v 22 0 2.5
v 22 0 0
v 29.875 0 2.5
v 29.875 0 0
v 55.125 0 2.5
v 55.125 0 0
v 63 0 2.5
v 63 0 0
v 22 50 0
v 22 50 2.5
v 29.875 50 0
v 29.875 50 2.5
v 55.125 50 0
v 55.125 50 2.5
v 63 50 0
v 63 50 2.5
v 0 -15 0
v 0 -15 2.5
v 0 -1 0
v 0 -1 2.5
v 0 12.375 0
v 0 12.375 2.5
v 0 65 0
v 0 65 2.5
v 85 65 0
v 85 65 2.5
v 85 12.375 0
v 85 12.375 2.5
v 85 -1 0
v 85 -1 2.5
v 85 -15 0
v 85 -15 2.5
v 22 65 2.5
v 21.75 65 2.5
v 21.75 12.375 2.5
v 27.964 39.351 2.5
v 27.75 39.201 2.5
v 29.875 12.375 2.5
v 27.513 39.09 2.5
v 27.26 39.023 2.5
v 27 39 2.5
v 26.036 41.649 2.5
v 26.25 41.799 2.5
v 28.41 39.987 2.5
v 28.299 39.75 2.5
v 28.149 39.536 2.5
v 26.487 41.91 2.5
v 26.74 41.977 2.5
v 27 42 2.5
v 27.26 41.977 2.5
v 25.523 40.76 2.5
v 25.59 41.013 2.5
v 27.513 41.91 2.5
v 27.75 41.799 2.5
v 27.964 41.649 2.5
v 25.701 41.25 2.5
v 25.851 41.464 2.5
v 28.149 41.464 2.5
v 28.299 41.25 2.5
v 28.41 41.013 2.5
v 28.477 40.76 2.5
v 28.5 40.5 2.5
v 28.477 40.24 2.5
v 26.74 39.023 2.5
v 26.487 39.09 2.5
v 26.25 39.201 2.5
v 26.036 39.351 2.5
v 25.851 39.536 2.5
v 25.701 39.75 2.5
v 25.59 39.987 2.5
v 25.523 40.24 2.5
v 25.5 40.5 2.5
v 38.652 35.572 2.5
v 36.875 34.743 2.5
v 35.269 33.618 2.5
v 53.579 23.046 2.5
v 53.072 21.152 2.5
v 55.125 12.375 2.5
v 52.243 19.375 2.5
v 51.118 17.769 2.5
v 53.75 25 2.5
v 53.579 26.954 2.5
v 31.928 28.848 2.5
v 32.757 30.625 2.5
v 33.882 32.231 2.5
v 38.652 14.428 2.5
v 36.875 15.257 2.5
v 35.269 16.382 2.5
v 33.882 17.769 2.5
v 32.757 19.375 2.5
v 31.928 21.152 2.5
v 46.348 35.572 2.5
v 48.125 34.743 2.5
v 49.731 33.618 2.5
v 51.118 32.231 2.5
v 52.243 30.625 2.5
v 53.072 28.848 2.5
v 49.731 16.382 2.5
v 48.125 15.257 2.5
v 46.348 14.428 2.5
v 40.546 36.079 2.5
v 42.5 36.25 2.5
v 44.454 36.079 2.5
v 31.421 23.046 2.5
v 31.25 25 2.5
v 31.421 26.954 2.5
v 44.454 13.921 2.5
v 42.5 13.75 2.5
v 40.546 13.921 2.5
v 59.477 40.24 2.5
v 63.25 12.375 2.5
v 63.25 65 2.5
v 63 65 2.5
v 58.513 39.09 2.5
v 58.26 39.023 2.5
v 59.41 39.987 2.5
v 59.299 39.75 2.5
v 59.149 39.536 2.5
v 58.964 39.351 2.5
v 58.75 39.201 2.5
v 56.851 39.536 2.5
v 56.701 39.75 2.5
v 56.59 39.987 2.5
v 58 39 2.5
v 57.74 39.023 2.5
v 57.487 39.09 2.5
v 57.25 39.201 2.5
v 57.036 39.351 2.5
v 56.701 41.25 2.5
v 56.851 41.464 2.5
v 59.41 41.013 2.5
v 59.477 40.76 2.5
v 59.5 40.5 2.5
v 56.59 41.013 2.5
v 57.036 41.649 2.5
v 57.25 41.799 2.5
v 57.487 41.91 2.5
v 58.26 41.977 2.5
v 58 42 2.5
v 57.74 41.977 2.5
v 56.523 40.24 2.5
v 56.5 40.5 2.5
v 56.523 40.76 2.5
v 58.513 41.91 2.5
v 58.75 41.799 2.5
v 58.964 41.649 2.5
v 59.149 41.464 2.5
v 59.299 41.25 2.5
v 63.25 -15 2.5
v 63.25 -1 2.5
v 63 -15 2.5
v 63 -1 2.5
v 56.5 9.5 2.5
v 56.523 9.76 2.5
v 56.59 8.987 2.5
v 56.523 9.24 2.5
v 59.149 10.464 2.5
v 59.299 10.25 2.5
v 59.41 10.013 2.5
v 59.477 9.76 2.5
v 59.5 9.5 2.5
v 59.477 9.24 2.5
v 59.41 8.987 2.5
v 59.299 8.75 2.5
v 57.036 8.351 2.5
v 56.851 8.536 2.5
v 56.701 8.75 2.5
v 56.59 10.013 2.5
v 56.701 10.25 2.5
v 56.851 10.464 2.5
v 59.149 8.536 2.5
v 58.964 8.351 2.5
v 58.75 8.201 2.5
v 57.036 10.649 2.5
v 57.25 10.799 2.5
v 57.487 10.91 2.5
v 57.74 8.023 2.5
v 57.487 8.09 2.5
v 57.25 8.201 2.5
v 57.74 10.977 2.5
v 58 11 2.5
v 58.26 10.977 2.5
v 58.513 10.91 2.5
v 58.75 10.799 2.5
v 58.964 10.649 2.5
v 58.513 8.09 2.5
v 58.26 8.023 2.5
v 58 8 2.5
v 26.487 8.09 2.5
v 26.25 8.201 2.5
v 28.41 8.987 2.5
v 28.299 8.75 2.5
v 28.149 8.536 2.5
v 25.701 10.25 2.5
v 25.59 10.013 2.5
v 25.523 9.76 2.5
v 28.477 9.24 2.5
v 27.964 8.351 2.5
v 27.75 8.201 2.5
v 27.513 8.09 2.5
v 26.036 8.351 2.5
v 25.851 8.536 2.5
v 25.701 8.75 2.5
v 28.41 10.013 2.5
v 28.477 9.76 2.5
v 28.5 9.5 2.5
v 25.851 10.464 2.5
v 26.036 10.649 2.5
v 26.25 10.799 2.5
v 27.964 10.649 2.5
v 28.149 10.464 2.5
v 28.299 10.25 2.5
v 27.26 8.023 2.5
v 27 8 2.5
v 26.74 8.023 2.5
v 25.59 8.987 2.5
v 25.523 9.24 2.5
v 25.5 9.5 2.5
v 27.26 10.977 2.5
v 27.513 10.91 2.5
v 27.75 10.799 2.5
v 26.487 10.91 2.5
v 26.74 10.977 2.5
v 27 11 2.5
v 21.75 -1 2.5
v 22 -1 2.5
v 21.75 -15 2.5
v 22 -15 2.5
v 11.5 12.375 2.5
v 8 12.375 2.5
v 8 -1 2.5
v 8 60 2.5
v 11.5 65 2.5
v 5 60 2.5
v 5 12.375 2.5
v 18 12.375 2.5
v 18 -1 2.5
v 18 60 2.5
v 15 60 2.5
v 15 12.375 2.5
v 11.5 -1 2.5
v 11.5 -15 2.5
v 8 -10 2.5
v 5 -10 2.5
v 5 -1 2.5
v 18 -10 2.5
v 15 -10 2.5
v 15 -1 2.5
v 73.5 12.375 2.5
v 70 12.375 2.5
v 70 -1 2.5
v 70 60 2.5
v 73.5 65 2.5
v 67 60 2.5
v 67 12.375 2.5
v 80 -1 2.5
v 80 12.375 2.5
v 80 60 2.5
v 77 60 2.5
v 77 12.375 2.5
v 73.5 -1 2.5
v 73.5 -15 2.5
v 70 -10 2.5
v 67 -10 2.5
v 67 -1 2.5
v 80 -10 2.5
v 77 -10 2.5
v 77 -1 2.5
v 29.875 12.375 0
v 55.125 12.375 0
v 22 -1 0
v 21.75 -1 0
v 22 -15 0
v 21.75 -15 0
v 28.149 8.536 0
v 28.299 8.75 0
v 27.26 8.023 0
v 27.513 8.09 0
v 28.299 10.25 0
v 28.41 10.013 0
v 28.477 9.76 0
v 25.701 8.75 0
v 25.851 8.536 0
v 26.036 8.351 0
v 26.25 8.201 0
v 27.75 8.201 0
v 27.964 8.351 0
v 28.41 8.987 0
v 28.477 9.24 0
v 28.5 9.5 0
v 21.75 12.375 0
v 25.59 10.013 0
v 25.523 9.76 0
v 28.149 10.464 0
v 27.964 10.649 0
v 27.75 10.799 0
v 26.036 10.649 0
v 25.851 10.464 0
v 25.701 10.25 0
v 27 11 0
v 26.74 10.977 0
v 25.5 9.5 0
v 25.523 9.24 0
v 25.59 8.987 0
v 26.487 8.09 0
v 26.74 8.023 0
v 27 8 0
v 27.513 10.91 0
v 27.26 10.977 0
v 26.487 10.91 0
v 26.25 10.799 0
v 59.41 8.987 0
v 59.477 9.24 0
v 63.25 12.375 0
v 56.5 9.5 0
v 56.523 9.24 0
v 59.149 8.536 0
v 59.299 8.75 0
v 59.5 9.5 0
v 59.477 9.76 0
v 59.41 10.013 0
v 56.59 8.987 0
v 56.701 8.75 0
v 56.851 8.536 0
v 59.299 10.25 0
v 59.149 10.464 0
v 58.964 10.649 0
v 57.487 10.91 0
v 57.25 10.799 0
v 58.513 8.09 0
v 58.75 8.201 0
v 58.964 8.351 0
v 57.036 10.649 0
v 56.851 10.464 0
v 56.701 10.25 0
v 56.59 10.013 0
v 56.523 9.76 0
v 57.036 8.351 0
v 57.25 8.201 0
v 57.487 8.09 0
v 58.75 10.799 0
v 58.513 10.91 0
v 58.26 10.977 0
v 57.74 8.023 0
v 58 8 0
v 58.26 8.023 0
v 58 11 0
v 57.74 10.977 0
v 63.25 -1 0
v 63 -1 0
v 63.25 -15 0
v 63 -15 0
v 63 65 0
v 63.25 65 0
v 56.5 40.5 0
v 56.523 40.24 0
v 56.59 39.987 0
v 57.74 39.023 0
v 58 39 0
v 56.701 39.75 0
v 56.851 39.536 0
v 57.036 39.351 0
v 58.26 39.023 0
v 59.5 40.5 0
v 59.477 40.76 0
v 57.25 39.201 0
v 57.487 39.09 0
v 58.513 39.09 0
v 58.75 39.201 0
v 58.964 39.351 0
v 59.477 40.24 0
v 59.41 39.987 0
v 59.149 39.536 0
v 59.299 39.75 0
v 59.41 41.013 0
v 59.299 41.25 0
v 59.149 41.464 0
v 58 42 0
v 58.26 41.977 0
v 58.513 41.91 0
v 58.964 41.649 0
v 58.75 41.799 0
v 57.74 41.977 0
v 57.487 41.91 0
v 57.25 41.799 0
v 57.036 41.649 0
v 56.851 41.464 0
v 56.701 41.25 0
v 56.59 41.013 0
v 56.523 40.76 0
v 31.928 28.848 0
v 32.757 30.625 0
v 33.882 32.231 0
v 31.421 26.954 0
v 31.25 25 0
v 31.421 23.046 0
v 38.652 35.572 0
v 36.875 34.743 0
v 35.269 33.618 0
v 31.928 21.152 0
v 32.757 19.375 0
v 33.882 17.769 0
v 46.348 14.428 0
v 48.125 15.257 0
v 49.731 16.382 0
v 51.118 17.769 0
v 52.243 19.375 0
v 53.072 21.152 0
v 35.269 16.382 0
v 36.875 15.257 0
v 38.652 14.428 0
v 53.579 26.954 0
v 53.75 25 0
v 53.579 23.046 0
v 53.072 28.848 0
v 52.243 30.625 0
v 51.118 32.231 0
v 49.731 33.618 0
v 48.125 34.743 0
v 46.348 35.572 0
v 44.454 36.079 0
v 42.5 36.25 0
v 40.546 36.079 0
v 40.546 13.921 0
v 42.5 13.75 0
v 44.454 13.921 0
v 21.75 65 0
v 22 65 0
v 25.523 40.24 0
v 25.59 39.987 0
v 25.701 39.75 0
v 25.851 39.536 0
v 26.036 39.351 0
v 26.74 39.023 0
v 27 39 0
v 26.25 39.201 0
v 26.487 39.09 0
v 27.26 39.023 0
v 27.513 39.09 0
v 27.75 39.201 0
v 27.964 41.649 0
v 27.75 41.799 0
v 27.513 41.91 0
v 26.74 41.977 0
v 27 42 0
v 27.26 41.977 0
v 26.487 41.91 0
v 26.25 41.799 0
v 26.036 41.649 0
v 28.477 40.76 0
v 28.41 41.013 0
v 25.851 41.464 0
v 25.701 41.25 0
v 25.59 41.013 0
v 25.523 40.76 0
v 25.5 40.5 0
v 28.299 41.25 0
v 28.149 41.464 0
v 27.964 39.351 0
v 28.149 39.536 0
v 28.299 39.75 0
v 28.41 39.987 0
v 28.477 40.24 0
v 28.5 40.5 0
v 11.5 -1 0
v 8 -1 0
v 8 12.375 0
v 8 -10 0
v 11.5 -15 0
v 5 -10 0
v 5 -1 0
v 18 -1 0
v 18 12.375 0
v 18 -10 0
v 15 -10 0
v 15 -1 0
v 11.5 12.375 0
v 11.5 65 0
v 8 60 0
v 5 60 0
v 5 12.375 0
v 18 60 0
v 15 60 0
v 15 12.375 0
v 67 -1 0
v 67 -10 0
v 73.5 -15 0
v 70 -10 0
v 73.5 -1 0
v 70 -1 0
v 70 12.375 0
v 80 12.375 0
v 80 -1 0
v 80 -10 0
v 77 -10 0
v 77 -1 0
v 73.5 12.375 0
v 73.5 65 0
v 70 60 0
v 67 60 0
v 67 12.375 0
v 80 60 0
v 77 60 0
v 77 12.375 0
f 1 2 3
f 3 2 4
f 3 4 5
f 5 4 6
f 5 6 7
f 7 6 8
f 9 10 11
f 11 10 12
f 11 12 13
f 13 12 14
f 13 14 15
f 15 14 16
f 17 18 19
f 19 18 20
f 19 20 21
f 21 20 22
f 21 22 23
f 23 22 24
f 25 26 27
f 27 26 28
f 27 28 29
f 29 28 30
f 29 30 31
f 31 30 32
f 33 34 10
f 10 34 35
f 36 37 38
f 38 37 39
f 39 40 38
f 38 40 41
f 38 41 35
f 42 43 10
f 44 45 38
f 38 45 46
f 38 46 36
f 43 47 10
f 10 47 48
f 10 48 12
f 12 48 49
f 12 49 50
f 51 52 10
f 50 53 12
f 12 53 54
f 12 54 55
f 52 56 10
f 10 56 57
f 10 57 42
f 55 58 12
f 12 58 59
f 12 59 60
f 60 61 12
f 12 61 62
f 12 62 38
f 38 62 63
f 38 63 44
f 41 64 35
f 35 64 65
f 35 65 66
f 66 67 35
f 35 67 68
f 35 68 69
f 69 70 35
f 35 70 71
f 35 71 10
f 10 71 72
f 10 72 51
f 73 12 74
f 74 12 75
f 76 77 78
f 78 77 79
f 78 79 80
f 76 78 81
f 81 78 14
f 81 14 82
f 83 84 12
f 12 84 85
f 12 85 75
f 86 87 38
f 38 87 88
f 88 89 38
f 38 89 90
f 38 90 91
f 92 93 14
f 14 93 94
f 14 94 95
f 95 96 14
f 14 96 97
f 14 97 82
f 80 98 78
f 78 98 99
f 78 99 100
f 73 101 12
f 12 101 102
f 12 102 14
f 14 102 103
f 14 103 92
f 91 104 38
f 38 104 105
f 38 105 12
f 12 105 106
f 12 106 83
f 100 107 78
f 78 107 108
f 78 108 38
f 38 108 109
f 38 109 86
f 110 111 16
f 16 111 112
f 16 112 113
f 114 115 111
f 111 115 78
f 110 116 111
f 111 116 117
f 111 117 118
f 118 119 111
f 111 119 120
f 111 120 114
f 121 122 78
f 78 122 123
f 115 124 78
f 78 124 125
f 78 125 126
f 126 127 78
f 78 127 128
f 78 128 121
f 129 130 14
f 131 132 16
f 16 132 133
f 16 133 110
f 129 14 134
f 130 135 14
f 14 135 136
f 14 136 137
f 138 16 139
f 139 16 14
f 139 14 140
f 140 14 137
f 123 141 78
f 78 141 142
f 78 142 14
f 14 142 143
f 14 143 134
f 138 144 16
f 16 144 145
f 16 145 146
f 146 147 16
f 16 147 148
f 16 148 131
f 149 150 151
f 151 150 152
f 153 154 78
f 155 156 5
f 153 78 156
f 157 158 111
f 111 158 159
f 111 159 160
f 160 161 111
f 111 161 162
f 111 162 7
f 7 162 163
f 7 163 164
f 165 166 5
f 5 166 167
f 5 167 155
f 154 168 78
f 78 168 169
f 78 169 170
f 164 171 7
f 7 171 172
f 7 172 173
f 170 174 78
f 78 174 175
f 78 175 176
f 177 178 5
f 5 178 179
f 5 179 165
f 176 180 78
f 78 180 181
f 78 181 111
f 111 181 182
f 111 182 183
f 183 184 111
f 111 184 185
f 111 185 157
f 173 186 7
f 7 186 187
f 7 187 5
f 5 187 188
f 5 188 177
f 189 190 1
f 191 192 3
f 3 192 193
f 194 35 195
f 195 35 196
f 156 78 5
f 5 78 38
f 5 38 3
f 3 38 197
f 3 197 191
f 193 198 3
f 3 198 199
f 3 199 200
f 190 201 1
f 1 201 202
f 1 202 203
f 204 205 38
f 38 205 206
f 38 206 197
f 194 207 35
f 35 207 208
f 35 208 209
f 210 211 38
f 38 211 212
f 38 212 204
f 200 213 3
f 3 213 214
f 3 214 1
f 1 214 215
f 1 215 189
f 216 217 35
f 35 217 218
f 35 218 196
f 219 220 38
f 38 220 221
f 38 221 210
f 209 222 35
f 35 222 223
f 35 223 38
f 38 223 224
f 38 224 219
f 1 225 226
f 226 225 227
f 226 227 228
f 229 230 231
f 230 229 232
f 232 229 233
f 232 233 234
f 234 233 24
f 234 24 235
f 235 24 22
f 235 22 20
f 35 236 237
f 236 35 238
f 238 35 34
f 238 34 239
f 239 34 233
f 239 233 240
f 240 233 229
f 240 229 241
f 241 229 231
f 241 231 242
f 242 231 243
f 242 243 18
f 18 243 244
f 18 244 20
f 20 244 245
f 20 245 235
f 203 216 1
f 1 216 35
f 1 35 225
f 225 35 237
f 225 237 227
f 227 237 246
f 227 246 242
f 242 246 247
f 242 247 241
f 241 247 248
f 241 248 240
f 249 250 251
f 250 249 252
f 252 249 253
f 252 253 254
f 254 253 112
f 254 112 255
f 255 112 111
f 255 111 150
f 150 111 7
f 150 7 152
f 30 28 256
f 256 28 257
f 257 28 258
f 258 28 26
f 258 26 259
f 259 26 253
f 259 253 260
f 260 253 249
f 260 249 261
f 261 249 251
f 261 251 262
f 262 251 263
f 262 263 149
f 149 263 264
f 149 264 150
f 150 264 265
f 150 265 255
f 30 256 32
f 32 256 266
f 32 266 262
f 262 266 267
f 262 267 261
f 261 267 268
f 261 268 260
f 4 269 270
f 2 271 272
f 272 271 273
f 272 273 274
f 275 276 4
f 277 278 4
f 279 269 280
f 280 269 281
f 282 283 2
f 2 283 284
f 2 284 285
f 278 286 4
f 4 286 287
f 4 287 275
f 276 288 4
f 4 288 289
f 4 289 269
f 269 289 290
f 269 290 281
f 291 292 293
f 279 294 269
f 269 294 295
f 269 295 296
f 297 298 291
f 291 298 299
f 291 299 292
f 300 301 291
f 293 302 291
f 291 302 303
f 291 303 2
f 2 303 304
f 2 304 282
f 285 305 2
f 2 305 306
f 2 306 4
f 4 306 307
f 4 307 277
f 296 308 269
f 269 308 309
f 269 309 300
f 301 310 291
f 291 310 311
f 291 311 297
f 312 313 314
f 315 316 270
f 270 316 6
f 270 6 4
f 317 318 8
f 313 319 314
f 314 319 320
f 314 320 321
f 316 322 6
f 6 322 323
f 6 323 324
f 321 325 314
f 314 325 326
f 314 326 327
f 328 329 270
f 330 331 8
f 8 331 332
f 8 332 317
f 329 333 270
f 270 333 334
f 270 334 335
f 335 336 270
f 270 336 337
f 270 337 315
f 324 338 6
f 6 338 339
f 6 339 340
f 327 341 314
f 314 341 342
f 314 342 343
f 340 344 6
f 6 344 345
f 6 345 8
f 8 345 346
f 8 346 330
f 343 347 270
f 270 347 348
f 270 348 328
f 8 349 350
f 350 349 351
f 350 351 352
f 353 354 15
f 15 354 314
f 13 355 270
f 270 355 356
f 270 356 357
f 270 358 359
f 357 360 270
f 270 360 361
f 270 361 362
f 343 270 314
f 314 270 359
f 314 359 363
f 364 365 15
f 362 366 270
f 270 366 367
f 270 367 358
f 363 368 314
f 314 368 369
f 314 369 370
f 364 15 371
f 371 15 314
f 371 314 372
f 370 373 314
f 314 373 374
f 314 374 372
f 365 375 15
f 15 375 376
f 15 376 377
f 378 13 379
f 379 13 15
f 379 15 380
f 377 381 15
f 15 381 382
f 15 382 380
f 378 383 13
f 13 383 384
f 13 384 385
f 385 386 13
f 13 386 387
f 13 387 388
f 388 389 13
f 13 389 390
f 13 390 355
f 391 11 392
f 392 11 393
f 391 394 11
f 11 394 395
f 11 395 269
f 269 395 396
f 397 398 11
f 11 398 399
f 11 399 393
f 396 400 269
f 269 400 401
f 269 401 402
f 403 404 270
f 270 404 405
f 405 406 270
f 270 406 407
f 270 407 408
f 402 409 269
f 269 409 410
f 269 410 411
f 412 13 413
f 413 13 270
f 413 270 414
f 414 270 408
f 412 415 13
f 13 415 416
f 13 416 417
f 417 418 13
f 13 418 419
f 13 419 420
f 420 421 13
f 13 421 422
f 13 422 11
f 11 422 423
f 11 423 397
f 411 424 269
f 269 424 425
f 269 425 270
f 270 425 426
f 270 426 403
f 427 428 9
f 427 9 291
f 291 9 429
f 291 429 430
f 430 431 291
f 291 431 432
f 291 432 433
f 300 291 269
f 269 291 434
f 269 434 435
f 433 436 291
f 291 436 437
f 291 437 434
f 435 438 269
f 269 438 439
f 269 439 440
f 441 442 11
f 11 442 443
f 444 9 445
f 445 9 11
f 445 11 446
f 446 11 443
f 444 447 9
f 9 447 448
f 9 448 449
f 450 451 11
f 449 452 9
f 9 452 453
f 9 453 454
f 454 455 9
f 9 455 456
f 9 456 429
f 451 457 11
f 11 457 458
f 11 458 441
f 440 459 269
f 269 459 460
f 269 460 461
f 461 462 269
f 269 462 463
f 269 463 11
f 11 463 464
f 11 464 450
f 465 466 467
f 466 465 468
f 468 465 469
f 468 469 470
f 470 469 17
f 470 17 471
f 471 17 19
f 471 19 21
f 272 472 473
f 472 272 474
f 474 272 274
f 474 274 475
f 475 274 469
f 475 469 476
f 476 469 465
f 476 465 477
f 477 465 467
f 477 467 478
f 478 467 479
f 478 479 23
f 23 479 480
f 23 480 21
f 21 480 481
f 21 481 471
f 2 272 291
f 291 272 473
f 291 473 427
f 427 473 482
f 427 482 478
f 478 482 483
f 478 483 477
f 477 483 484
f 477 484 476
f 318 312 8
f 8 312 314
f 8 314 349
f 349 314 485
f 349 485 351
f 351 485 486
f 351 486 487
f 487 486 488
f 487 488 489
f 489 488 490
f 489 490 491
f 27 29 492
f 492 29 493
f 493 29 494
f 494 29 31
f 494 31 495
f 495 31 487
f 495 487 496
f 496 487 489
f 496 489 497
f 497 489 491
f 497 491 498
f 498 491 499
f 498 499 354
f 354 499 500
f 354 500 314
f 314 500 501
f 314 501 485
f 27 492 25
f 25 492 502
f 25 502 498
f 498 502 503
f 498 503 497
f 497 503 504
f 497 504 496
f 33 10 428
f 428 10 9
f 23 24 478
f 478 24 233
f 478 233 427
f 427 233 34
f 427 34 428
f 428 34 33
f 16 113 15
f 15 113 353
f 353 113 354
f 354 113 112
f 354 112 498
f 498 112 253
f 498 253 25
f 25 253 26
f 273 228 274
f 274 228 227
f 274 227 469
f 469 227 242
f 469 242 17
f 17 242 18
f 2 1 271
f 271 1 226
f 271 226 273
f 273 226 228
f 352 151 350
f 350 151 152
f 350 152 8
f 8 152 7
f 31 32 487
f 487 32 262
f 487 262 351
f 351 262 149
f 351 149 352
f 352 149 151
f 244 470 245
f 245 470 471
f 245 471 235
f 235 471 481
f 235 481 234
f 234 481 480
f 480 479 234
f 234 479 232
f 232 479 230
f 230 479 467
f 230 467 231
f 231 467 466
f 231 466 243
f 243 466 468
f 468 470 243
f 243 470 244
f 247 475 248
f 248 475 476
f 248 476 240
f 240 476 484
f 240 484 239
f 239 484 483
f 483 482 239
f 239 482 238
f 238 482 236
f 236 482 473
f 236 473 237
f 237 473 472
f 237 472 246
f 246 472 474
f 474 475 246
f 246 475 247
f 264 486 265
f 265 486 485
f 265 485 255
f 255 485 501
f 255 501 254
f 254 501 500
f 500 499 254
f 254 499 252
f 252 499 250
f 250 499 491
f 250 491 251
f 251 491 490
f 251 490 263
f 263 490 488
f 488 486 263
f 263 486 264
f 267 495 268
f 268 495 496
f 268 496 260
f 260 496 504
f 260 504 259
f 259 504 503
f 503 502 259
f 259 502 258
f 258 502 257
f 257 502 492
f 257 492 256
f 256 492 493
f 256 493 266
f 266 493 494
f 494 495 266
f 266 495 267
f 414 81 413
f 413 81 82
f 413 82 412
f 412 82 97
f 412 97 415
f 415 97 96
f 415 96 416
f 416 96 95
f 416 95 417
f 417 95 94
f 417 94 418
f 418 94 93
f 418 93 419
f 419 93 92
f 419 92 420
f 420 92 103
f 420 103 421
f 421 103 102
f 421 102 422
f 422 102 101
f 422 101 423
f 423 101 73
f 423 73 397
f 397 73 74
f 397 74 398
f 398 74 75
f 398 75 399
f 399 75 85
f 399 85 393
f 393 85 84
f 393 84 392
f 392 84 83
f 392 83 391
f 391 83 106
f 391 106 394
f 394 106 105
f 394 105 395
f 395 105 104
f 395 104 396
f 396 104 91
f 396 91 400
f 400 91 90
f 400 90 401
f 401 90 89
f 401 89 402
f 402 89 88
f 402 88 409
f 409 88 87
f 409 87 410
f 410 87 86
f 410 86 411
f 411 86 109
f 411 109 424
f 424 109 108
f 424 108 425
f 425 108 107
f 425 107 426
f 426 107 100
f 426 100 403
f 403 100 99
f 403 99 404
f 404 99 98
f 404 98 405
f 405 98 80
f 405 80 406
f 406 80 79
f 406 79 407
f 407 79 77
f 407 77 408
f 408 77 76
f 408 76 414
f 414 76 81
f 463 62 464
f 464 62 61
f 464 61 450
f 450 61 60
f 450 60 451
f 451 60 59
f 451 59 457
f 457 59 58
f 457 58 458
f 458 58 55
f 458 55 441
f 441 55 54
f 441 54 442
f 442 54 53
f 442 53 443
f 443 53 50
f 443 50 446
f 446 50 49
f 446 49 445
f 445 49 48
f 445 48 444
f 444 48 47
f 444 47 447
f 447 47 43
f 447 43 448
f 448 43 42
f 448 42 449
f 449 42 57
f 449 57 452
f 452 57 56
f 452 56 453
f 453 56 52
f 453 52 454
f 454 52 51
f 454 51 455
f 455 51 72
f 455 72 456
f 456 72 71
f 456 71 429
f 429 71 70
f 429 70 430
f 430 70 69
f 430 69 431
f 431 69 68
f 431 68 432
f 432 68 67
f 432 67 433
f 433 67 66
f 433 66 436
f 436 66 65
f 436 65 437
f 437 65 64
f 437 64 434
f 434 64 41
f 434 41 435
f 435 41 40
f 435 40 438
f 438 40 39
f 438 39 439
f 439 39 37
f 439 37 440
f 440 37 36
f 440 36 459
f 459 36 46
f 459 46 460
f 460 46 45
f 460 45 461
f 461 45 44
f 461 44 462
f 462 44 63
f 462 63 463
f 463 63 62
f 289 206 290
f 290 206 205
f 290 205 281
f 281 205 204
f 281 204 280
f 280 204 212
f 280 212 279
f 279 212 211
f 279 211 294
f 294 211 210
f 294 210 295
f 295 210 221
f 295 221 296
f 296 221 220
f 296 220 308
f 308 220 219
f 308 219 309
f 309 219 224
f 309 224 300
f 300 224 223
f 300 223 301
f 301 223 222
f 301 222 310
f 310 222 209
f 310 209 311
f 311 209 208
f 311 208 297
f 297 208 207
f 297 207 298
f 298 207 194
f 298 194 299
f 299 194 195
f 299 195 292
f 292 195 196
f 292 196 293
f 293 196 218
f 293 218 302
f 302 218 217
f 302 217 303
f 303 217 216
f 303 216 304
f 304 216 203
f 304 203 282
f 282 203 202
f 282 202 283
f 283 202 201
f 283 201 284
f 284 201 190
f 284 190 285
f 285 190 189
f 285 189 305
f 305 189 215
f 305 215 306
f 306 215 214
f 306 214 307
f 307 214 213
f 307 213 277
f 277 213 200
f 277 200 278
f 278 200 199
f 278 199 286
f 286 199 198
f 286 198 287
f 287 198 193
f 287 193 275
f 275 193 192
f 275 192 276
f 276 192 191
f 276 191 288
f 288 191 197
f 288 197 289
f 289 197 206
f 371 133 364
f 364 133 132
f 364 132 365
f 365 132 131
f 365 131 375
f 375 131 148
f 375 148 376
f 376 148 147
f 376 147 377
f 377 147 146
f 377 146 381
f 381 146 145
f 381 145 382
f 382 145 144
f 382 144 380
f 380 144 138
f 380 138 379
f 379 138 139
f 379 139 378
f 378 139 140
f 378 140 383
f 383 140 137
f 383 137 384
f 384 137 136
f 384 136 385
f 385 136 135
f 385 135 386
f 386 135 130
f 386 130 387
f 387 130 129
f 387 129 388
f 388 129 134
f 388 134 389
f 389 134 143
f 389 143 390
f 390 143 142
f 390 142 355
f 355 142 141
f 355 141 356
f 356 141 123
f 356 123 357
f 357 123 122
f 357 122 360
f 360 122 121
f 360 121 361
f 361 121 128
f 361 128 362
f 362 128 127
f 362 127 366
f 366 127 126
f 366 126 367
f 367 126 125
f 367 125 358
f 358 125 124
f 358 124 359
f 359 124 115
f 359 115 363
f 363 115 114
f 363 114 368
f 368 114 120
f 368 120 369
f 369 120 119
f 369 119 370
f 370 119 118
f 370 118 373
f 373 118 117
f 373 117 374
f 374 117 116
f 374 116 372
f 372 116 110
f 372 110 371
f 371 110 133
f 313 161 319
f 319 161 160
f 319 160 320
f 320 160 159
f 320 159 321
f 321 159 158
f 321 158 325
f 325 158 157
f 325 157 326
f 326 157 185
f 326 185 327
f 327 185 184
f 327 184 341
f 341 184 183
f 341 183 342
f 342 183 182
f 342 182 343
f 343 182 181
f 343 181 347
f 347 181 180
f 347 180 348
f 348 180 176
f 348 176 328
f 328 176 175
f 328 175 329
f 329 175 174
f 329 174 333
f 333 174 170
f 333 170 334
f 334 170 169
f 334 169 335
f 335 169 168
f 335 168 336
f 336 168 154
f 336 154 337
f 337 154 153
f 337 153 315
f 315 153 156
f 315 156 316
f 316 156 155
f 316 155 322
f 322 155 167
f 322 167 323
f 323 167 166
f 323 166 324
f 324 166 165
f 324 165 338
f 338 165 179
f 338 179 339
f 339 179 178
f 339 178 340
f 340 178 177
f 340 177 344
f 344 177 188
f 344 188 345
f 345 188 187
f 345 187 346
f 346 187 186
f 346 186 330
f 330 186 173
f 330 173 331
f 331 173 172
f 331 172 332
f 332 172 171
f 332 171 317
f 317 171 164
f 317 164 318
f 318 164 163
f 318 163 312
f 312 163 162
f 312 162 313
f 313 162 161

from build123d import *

# Parameters (mm, degrees)
SKETCH1_W                 = 85
SKETCH1_H                 = 50
BOSS_EXTRUDE1_DEPTH       = 2.5
SKETCH5_W                 = 22
SKETCH5_H                 = 15
BOSS_EXTRUDE2_DEPTH       = 2.5
LPATTERN4_COUNT           = 2
LPATTERN4_PITCH           = 63
LPATTERN5_COUNT           = 2
LPATTERN5_PITCH           = 65
LPATTERN5_COPY_1_SKETCH_W = 22
LPATTERN5_COPY_1_SKETCH_H = 15
LPATTERN5_COPY_1_DEPTH    = 2.5
SKETCH2_W                 = 3
SKETCH2_H                 = 70
CUT_EXTRUDE1_DEPTH        = 2.5
LPATTERN1_COUNT           = 2
LPATTERN1_PITCH           = 62
SKETCH3_R                 = 11.25
CUT_EXTRUDE2_DEPTH        = 108.033873143
SKETCH4_R                 = 1.5
CUT_EXTRUDE3_DEPTH        = 108.033873143
LPATTERN2_COUNT           = 2
LPATTERN2_PITCH           = 31
LPATTERN3_COUNT           = 2
LPATTERN3_PITCH           = 31
LPATTERN3_COPY_1_SKETCH_R = 1.5
LPATTERN3_COPY_1_DEPTH    = 108.033873143


with BuildPart() as part:
    # Sketch1 → Boss-Extrude1 (new body)
    with BuildSketch(Plane.XY):
        with Locations((42.5, 25)):
            Rectangle(SKETCH1_W, SKETCH1_H)
    extrude(amount=BOSS_EXTRUDE1_DEPTH)

    # Sketch5 → Boss-Extrude2 (add)
    with BuildSketch(Plane.XY):
        with Locations((11, 57.5)):
            Rectangle(SKETCH5_W, SKETCH5_H)
    boss_extrude2 = extrude(amount=BOSS_EXTRUDE2_DEPTH)

    # LPattern4: Boss-Extrude2 ×2
    with Locations(*[(i * LPATTERN4_PITCH, 0, 0) for i in range(1, LPATTERN4_COUNT)]):
        add(boss_extrude2)

    # LPattern5: Boss-Extrude2 ×2
    with Locations(*[(0, -i * LPATTERN5_PITCH, 0) for i in range(1, LPATTERN5_COUNT)]):
        add(boss_extrude2)

    # LPattern5 copy 1 sketch → LPattern5 copy 1 (add)
    with BuildSketch(Plane(origin=(63, -65, 0), x_dir=(1, 0, 0), z_dir=(0, 0, 1))):
        with Locations((11, 57.5)):
            Rectangle(LPATTERN5_COPY_1_SKETCH_W, LPATTERN5_COPY_1_SKETCH_H)
    extrude(amount=LPATTERN5_COPY_1_DEPTH)

    # Sketch2 → Cut-Extrude1 (cut)
    with BuildSketch(Plane.XY.offset(2.5)):
        with Locations((6.5, 25)):
            Rectangle(SKETCH2_W, SKETCH2_H)
        with Locations((16.5, 25)):
            Rectangle(SKETCH2_W, SKETCH2_H)
    cut_extrude1 = extrude(amount=-CUT_EXTRUDE1_DEPTH, mode=Mode.SUBTRACT)

    # LPattern1: Cut-Extrude1 ×2
    with Locations(*[(i * LPATTERN1_PITCH, 0, 0) for i in range(1, LPATTERN1_COUNT)]):
        add(cut_extrude1, mode=Mode.SUBTRACT)

    # Sketch3 → Cut-Extrude2 (cut, through all)
    with BuildSketch(Plane.XY.offset(2.5)):
        with Locations((42.5, 25)):
            Circle(SKETCH3_R)
    extrude(amount=-CUT_EXTRUDE2_DEPTH, mode=Mode.SUBTRACT)

    # Sketch4 → Cut-Extrude3 (cut, through all)
    with BuildSketch(Plane.XY.offset(2.5)):
        with Locations((27, 40.5)):
            Circle(SKETCH4_R)
    cut_extrude3 = extrude(amount=-CUT_EXTRUDE3_DEPTH, mode=Mode.SUBTRACT)

    # LPattern2: Cut-Extrude3 ×2
    with Locations(*[(0, -i * LPATTERN2_PITCH, 0) for i in range(1, LPATTERN2_COUNT)]):
        add(cut_extrude3, mode=Mode.SUBTRACT)

    # LPattern3: Cut-Extrude3 ×2
    with Locations(*[(i * LPATTERN3_PITCH, 0, 0) for i in range(1, LPATTERN3_COUNT)]):
        add(cut_extrude3, mode=Mode.SUBTRACT)

    # LPattern3 copy 1 sketch → LPattern3 copy 1 (cut, through all)
    with BuildSketch(Plane(origin=(31, -31, 2.5), x_dir=(1, 0, 0), z_dir=(0, 0, 1))):
        with Locations((27, 40.5)):
            Circle(LPATTERN3_COPY_1_SKETCH_R)
    extrude(amount=-LPATTERN3_COPY_1_DEPTH, mode=Mode.SUBTRACT)


solid = part.part
